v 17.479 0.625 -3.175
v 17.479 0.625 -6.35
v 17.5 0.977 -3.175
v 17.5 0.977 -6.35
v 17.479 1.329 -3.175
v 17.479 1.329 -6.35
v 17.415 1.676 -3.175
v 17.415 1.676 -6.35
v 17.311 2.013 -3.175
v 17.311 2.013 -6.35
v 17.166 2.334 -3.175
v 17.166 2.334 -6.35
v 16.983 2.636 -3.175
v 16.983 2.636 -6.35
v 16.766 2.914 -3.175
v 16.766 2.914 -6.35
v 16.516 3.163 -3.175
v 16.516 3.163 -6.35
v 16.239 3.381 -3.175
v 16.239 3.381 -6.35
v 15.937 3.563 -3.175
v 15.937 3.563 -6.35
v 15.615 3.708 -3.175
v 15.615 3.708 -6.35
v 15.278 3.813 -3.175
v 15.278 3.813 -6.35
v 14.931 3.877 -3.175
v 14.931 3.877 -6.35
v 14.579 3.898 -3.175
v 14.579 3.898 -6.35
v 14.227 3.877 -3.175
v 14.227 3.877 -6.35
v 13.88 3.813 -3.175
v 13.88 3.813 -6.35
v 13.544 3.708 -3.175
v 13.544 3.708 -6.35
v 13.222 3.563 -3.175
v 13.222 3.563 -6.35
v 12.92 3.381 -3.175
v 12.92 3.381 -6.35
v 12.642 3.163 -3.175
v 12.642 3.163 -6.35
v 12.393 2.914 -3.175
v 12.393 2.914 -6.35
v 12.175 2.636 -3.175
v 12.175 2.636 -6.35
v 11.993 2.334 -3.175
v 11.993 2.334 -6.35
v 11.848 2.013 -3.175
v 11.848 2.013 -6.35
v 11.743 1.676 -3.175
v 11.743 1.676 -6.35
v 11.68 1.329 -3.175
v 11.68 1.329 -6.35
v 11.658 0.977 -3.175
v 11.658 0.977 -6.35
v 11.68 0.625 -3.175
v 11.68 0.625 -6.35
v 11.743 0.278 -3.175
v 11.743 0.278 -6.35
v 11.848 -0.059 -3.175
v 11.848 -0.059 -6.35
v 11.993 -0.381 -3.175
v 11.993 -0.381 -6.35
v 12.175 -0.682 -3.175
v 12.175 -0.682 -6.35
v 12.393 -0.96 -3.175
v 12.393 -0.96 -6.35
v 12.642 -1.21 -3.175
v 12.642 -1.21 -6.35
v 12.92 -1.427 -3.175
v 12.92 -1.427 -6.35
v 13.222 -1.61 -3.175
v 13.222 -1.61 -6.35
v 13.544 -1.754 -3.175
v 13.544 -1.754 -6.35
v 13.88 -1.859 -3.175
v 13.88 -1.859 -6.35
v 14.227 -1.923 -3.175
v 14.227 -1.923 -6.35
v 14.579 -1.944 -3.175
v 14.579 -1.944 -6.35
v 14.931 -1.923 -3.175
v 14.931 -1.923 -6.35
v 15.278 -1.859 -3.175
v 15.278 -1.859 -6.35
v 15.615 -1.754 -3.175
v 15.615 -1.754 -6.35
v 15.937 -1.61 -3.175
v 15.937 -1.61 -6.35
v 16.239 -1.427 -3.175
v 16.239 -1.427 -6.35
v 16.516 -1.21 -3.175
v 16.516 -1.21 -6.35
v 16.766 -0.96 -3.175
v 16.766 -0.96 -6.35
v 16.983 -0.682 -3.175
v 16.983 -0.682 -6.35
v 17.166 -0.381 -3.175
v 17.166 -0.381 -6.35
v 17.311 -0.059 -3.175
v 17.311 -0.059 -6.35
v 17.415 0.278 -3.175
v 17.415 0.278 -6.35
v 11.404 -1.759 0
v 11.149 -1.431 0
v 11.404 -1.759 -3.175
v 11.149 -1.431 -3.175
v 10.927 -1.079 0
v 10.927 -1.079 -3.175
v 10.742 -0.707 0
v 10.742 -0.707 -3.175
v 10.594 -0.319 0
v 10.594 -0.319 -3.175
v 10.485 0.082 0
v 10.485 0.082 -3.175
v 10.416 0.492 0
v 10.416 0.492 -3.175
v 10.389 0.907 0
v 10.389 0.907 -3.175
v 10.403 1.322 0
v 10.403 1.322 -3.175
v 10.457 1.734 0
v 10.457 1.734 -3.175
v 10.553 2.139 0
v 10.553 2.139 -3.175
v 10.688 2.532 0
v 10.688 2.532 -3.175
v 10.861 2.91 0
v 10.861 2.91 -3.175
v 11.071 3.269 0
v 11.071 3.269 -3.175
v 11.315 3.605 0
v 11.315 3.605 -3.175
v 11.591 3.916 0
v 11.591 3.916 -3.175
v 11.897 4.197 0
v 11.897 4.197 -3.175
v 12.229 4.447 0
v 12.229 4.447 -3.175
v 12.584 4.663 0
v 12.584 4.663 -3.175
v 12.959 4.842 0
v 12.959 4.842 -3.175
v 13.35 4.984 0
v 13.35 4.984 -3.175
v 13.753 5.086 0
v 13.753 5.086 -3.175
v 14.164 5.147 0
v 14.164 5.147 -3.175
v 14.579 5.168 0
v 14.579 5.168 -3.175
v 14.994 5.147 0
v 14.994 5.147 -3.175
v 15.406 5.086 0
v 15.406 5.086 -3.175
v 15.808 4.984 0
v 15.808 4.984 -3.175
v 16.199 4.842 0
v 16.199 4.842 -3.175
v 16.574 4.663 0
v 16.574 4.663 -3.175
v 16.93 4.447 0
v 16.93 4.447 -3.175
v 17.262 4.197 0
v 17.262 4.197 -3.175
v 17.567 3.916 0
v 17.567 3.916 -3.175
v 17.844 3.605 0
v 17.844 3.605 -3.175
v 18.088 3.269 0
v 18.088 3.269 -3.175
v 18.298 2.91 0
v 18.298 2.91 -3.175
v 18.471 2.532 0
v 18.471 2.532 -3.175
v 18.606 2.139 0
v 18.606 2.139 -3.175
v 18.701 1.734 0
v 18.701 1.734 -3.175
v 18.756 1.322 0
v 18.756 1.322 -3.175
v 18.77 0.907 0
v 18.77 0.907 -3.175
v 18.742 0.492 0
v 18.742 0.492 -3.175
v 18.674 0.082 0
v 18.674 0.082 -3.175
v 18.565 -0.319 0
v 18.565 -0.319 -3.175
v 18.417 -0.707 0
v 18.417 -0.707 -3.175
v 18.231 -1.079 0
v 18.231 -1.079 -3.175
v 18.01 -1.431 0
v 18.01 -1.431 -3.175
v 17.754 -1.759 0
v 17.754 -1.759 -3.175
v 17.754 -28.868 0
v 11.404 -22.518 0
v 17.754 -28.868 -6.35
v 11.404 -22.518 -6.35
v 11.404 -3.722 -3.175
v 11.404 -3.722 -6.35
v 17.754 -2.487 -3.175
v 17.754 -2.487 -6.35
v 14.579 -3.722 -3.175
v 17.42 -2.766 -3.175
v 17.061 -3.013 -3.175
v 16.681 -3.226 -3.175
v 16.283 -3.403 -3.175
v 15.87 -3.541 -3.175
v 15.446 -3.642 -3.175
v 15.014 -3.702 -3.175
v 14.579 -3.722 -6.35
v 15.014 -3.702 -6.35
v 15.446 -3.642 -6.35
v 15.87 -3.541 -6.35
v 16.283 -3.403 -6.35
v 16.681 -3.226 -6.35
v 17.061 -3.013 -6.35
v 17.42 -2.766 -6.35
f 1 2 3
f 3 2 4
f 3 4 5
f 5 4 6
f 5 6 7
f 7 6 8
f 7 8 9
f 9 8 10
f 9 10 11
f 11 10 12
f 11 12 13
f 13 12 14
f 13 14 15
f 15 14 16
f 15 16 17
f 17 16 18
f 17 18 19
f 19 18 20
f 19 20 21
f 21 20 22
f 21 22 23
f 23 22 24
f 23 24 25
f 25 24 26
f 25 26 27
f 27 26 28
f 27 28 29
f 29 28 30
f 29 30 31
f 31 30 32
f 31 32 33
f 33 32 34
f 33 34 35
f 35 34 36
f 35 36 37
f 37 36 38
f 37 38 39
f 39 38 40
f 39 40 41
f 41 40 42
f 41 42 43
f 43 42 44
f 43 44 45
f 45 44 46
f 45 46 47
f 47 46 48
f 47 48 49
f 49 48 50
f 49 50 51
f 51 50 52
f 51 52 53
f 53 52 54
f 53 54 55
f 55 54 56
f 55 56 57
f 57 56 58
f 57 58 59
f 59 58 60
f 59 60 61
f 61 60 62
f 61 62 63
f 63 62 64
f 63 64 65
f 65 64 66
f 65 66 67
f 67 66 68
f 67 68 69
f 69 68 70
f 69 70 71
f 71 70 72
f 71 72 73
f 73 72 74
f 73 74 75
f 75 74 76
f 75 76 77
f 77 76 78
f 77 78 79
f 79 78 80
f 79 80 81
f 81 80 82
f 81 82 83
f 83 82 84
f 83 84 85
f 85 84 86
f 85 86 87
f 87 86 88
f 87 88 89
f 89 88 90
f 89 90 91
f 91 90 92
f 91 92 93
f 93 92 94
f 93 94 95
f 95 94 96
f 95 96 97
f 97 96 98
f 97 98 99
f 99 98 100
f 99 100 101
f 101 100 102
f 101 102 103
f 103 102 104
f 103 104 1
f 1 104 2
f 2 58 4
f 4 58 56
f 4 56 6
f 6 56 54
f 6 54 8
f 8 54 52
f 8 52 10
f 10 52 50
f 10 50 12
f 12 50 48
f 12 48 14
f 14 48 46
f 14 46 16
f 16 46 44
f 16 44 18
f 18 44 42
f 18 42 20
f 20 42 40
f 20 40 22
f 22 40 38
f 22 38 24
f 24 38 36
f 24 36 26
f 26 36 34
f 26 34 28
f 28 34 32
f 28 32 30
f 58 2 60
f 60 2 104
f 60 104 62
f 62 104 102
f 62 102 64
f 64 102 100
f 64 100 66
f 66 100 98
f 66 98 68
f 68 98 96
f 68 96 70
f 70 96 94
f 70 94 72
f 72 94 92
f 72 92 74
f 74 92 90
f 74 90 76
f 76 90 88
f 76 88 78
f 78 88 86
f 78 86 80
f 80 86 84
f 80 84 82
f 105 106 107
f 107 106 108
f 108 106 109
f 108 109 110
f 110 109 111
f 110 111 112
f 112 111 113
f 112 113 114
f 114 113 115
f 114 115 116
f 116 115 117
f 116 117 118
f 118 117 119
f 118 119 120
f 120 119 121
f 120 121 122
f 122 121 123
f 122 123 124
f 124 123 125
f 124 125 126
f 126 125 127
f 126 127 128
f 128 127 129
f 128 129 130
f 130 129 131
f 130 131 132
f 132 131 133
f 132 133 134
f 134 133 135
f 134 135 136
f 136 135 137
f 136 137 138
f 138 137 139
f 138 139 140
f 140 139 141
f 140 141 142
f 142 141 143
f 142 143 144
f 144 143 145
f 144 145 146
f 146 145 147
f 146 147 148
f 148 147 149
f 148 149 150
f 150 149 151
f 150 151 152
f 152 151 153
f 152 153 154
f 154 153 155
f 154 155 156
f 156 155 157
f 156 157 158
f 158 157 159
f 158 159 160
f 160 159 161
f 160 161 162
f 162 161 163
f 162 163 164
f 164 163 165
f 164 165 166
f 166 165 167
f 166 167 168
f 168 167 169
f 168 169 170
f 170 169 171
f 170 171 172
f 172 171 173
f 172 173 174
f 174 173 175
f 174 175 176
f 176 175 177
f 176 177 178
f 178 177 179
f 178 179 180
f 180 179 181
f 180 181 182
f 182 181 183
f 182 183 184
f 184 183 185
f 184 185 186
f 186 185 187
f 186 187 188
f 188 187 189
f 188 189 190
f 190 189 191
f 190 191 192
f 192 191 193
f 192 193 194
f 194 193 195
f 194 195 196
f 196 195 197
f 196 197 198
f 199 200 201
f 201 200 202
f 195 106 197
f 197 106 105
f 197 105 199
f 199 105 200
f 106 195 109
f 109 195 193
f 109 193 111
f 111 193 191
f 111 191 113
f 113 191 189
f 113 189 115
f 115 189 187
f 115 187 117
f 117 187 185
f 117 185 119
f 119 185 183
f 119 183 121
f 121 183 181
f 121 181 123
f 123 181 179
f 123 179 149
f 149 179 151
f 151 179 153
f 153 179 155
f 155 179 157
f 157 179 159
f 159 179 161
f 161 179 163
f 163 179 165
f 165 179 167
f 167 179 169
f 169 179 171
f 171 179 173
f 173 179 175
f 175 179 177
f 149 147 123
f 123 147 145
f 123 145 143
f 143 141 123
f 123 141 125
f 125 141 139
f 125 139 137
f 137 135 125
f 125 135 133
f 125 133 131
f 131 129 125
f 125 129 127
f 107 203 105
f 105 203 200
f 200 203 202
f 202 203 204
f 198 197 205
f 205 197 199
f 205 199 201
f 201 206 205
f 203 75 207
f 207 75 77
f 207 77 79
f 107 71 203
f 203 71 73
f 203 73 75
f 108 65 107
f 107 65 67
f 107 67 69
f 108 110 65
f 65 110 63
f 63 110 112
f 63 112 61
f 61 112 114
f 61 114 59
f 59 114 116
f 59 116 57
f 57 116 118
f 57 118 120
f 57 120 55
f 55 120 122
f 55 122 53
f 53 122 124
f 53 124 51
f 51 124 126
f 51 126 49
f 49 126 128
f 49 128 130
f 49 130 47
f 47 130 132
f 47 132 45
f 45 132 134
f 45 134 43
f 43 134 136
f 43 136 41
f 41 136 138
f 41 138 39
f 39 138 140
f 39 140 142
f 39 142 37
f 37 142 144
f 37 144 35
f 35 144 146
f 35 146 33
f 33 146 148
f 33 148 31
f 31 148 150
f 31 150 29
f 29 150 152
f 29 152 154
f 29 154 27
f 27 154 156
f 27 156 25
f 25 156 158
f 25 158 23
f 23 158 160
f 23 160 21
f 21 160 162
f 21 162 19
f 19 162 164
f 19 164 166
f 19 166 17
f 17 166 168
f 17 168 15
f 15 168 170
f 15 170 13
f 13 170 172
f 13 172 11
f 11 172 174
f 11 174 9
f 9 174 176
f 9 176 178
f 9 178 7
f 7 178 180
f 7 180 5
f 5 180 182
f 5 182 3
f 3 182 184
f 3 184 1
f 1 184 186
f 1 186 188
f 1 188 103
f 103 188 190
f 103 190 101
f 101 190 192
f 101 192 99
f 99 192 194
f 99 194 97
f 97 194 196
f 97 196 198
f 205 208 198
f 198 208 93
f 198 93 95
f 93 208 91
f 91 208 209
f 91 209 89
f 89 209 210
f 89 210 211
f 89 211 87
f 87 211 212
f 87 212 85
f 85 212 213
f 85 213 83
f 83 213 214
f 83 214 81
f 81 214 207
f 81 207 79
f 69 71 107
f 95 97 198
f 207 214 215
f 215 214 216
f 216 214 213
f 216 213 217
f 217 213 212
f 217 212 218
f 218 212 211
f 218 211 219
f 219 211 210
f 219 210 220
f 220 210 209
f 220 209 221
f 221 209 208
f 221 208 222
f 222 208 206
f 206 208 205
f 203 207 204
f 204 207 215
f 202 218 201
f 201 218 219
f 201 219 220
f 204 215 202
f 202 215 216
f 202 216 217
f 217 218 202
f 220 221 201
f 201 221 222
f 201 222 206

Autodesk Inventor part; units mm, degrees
ref_plane "YZ Plane" through (0, 0, 0) normal (1, 0, 0) x (0, 1, 0)
ref_plane "XZ Plane" through (0, 0, 0) normal (0, 1, 0) x (-1, 0, 0)
ref_plane "XY Plane" through (0, 0, 0) normal (0, 0, 1) x (1, 0, 0)
sketch "Sketch3" plane through (0, 0, 0) normal (0, 0, 1) x (1, 0, 0)
  circle A0 centre (14.5794, 0.9769) radius 3.175 projected
  arc A1 (14.5794, -3.4681) -> (19.0244, 0.9769) centre (14.5794, 0.9769) ccw projected
  line L0 (19.0244, 5.4219) -> (19.0244, 0.9769) projected
  line L1 (14.5794, 5.4219) -> (19.0244, 5.4219) projected
  arc A2 (14.5794, 5.4219) -> (10.1344, 0.9769) centre (14.5794, 0.9769) ccw projected
  line L2 (10.1344, -3.4681) -> (10.1344, 0.9769) projected
  line L3 (14.5794, -3.4681) -> (10.1344, -3.4681) projected
  circle A3 centre (14.5794, 0.9769) radius 2.921
  point P0 (0, 0)
  dimension "d3" = 5.842
extrude "Extrusion2" add sketch "Sketch3" against normal blind 6.35 contours A3
sketch "Sketch4" plane through (14.5794, 0.9769, 0) normal (0, 0, 1) x (1, 0, 0)
  circle A0 centre (0, 0) radius 4.191
  circle A1 centre (0, 0) radius 3.175 projected
  arc A2 (0, -4.445) -> (4.445, 0) centre (0, 0) ccw projected
  line L0 (4.445, 4.445) -> (4.445, 0) projected
  line L1 (0, 4.445) -> (4.445, 4.445) projected
  arc A3 (0, 4.445) -> (-4.445, 0) centre (0, 0) ccw projected
  line L2 (-4.445, -4.445) -> (-4.445, 0) projected
  line L3 (0, -4.445) -> (-4.445, -4.445) projected
  circle A4 centre (0, 0) radius 2.921 projected
  point P0 (-14.5794, -0.9769)
  dimension "d6" = 8.382
extrude "Extrusion3" add sketch "Sketch4" against normal blind 3.175 contours A0 | A1 | A4
sketch "Sketch5" plane through (14.5794, 0.9769, 0) normal (0, 0, 1) x (1, 0, 0)
  circle A0 centre (0, 0) radius 4.191 projected
  line L0 (-3.175, -23.495) -> (-3.175, 0)
  line L1 (-3.175, -23.495) -> (3.175, -29.845)
  line L2 (3.175, -29.845) -> (3.175, 0)
  circle A1 centre (0, 0) radius 3.175
  line L3 (3.175, -29.845) -> (-3.175, -23.495) projected
  point P0 (-14.5794, -0.9769)
  dimension "d9" = 6.35
extrude "Extrusion4" add sketch "Sketch5" against normal blind 3.175 contours L0 A1 L2 A0 | A0 L2 L1 L0 picked at (0.1276, -3.8236)
sketch "Sketch6" plane through (14.5794, 0.9769, -3.175) normal (0, 0, -1) x (-1, 0, 0)
  arc A0 (-4.445, 0) -> (0, -4.445) centre (0, 0) ccw projected
  line L0 (0, -4.445) -> (23.405, -4.445) projected
  line L1 (-3.175, -2.7357) -> (-3.175, -29.845) projected
  line L2 (3.175, -2.7357) -> (3.175, -23.495) projected
  line L3 (-3.175, -29.845) -> (3.175, -23.495)
  line L4 (3.175, -23.495) -> (3.175, -4.699)
  line L5 (-3.175, -3.4641) -> (-3.175, -29.845)
  arc A1 (0, -4.699) -> (-3.175, -3.4641) centre (0, 0) ccw construction
  line L6 (0, -4.699) -> (3.175, -4.699)
  arc A2 (-3.175, -3.4641) -> (0, -4.699) centre (0, 0) ccw
  point P0 (14.5794, -0.9769)
  dimension "d12" = 9.398
extrude "Extrusion5" add sketch "Sketch6" along normal blind 3.175 contours A2 L6 L2 L3 L1
properties part number "Latch"
